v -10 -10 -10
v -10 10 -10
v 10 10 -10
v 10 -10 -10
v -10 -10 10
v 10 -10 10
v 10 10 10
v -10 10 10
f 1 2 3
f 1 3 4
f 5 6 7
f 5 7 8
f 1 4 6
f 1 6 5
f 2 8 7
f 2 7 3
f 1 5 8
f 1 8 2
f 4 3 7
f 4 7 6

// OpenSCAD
// Public smoke geometry for the optional 3MF adapter.
// Units: millimetres.  This source is intentionally independent of any
// camera artwork or user-supplied model.
cube([20, 20, 20], center = true);
